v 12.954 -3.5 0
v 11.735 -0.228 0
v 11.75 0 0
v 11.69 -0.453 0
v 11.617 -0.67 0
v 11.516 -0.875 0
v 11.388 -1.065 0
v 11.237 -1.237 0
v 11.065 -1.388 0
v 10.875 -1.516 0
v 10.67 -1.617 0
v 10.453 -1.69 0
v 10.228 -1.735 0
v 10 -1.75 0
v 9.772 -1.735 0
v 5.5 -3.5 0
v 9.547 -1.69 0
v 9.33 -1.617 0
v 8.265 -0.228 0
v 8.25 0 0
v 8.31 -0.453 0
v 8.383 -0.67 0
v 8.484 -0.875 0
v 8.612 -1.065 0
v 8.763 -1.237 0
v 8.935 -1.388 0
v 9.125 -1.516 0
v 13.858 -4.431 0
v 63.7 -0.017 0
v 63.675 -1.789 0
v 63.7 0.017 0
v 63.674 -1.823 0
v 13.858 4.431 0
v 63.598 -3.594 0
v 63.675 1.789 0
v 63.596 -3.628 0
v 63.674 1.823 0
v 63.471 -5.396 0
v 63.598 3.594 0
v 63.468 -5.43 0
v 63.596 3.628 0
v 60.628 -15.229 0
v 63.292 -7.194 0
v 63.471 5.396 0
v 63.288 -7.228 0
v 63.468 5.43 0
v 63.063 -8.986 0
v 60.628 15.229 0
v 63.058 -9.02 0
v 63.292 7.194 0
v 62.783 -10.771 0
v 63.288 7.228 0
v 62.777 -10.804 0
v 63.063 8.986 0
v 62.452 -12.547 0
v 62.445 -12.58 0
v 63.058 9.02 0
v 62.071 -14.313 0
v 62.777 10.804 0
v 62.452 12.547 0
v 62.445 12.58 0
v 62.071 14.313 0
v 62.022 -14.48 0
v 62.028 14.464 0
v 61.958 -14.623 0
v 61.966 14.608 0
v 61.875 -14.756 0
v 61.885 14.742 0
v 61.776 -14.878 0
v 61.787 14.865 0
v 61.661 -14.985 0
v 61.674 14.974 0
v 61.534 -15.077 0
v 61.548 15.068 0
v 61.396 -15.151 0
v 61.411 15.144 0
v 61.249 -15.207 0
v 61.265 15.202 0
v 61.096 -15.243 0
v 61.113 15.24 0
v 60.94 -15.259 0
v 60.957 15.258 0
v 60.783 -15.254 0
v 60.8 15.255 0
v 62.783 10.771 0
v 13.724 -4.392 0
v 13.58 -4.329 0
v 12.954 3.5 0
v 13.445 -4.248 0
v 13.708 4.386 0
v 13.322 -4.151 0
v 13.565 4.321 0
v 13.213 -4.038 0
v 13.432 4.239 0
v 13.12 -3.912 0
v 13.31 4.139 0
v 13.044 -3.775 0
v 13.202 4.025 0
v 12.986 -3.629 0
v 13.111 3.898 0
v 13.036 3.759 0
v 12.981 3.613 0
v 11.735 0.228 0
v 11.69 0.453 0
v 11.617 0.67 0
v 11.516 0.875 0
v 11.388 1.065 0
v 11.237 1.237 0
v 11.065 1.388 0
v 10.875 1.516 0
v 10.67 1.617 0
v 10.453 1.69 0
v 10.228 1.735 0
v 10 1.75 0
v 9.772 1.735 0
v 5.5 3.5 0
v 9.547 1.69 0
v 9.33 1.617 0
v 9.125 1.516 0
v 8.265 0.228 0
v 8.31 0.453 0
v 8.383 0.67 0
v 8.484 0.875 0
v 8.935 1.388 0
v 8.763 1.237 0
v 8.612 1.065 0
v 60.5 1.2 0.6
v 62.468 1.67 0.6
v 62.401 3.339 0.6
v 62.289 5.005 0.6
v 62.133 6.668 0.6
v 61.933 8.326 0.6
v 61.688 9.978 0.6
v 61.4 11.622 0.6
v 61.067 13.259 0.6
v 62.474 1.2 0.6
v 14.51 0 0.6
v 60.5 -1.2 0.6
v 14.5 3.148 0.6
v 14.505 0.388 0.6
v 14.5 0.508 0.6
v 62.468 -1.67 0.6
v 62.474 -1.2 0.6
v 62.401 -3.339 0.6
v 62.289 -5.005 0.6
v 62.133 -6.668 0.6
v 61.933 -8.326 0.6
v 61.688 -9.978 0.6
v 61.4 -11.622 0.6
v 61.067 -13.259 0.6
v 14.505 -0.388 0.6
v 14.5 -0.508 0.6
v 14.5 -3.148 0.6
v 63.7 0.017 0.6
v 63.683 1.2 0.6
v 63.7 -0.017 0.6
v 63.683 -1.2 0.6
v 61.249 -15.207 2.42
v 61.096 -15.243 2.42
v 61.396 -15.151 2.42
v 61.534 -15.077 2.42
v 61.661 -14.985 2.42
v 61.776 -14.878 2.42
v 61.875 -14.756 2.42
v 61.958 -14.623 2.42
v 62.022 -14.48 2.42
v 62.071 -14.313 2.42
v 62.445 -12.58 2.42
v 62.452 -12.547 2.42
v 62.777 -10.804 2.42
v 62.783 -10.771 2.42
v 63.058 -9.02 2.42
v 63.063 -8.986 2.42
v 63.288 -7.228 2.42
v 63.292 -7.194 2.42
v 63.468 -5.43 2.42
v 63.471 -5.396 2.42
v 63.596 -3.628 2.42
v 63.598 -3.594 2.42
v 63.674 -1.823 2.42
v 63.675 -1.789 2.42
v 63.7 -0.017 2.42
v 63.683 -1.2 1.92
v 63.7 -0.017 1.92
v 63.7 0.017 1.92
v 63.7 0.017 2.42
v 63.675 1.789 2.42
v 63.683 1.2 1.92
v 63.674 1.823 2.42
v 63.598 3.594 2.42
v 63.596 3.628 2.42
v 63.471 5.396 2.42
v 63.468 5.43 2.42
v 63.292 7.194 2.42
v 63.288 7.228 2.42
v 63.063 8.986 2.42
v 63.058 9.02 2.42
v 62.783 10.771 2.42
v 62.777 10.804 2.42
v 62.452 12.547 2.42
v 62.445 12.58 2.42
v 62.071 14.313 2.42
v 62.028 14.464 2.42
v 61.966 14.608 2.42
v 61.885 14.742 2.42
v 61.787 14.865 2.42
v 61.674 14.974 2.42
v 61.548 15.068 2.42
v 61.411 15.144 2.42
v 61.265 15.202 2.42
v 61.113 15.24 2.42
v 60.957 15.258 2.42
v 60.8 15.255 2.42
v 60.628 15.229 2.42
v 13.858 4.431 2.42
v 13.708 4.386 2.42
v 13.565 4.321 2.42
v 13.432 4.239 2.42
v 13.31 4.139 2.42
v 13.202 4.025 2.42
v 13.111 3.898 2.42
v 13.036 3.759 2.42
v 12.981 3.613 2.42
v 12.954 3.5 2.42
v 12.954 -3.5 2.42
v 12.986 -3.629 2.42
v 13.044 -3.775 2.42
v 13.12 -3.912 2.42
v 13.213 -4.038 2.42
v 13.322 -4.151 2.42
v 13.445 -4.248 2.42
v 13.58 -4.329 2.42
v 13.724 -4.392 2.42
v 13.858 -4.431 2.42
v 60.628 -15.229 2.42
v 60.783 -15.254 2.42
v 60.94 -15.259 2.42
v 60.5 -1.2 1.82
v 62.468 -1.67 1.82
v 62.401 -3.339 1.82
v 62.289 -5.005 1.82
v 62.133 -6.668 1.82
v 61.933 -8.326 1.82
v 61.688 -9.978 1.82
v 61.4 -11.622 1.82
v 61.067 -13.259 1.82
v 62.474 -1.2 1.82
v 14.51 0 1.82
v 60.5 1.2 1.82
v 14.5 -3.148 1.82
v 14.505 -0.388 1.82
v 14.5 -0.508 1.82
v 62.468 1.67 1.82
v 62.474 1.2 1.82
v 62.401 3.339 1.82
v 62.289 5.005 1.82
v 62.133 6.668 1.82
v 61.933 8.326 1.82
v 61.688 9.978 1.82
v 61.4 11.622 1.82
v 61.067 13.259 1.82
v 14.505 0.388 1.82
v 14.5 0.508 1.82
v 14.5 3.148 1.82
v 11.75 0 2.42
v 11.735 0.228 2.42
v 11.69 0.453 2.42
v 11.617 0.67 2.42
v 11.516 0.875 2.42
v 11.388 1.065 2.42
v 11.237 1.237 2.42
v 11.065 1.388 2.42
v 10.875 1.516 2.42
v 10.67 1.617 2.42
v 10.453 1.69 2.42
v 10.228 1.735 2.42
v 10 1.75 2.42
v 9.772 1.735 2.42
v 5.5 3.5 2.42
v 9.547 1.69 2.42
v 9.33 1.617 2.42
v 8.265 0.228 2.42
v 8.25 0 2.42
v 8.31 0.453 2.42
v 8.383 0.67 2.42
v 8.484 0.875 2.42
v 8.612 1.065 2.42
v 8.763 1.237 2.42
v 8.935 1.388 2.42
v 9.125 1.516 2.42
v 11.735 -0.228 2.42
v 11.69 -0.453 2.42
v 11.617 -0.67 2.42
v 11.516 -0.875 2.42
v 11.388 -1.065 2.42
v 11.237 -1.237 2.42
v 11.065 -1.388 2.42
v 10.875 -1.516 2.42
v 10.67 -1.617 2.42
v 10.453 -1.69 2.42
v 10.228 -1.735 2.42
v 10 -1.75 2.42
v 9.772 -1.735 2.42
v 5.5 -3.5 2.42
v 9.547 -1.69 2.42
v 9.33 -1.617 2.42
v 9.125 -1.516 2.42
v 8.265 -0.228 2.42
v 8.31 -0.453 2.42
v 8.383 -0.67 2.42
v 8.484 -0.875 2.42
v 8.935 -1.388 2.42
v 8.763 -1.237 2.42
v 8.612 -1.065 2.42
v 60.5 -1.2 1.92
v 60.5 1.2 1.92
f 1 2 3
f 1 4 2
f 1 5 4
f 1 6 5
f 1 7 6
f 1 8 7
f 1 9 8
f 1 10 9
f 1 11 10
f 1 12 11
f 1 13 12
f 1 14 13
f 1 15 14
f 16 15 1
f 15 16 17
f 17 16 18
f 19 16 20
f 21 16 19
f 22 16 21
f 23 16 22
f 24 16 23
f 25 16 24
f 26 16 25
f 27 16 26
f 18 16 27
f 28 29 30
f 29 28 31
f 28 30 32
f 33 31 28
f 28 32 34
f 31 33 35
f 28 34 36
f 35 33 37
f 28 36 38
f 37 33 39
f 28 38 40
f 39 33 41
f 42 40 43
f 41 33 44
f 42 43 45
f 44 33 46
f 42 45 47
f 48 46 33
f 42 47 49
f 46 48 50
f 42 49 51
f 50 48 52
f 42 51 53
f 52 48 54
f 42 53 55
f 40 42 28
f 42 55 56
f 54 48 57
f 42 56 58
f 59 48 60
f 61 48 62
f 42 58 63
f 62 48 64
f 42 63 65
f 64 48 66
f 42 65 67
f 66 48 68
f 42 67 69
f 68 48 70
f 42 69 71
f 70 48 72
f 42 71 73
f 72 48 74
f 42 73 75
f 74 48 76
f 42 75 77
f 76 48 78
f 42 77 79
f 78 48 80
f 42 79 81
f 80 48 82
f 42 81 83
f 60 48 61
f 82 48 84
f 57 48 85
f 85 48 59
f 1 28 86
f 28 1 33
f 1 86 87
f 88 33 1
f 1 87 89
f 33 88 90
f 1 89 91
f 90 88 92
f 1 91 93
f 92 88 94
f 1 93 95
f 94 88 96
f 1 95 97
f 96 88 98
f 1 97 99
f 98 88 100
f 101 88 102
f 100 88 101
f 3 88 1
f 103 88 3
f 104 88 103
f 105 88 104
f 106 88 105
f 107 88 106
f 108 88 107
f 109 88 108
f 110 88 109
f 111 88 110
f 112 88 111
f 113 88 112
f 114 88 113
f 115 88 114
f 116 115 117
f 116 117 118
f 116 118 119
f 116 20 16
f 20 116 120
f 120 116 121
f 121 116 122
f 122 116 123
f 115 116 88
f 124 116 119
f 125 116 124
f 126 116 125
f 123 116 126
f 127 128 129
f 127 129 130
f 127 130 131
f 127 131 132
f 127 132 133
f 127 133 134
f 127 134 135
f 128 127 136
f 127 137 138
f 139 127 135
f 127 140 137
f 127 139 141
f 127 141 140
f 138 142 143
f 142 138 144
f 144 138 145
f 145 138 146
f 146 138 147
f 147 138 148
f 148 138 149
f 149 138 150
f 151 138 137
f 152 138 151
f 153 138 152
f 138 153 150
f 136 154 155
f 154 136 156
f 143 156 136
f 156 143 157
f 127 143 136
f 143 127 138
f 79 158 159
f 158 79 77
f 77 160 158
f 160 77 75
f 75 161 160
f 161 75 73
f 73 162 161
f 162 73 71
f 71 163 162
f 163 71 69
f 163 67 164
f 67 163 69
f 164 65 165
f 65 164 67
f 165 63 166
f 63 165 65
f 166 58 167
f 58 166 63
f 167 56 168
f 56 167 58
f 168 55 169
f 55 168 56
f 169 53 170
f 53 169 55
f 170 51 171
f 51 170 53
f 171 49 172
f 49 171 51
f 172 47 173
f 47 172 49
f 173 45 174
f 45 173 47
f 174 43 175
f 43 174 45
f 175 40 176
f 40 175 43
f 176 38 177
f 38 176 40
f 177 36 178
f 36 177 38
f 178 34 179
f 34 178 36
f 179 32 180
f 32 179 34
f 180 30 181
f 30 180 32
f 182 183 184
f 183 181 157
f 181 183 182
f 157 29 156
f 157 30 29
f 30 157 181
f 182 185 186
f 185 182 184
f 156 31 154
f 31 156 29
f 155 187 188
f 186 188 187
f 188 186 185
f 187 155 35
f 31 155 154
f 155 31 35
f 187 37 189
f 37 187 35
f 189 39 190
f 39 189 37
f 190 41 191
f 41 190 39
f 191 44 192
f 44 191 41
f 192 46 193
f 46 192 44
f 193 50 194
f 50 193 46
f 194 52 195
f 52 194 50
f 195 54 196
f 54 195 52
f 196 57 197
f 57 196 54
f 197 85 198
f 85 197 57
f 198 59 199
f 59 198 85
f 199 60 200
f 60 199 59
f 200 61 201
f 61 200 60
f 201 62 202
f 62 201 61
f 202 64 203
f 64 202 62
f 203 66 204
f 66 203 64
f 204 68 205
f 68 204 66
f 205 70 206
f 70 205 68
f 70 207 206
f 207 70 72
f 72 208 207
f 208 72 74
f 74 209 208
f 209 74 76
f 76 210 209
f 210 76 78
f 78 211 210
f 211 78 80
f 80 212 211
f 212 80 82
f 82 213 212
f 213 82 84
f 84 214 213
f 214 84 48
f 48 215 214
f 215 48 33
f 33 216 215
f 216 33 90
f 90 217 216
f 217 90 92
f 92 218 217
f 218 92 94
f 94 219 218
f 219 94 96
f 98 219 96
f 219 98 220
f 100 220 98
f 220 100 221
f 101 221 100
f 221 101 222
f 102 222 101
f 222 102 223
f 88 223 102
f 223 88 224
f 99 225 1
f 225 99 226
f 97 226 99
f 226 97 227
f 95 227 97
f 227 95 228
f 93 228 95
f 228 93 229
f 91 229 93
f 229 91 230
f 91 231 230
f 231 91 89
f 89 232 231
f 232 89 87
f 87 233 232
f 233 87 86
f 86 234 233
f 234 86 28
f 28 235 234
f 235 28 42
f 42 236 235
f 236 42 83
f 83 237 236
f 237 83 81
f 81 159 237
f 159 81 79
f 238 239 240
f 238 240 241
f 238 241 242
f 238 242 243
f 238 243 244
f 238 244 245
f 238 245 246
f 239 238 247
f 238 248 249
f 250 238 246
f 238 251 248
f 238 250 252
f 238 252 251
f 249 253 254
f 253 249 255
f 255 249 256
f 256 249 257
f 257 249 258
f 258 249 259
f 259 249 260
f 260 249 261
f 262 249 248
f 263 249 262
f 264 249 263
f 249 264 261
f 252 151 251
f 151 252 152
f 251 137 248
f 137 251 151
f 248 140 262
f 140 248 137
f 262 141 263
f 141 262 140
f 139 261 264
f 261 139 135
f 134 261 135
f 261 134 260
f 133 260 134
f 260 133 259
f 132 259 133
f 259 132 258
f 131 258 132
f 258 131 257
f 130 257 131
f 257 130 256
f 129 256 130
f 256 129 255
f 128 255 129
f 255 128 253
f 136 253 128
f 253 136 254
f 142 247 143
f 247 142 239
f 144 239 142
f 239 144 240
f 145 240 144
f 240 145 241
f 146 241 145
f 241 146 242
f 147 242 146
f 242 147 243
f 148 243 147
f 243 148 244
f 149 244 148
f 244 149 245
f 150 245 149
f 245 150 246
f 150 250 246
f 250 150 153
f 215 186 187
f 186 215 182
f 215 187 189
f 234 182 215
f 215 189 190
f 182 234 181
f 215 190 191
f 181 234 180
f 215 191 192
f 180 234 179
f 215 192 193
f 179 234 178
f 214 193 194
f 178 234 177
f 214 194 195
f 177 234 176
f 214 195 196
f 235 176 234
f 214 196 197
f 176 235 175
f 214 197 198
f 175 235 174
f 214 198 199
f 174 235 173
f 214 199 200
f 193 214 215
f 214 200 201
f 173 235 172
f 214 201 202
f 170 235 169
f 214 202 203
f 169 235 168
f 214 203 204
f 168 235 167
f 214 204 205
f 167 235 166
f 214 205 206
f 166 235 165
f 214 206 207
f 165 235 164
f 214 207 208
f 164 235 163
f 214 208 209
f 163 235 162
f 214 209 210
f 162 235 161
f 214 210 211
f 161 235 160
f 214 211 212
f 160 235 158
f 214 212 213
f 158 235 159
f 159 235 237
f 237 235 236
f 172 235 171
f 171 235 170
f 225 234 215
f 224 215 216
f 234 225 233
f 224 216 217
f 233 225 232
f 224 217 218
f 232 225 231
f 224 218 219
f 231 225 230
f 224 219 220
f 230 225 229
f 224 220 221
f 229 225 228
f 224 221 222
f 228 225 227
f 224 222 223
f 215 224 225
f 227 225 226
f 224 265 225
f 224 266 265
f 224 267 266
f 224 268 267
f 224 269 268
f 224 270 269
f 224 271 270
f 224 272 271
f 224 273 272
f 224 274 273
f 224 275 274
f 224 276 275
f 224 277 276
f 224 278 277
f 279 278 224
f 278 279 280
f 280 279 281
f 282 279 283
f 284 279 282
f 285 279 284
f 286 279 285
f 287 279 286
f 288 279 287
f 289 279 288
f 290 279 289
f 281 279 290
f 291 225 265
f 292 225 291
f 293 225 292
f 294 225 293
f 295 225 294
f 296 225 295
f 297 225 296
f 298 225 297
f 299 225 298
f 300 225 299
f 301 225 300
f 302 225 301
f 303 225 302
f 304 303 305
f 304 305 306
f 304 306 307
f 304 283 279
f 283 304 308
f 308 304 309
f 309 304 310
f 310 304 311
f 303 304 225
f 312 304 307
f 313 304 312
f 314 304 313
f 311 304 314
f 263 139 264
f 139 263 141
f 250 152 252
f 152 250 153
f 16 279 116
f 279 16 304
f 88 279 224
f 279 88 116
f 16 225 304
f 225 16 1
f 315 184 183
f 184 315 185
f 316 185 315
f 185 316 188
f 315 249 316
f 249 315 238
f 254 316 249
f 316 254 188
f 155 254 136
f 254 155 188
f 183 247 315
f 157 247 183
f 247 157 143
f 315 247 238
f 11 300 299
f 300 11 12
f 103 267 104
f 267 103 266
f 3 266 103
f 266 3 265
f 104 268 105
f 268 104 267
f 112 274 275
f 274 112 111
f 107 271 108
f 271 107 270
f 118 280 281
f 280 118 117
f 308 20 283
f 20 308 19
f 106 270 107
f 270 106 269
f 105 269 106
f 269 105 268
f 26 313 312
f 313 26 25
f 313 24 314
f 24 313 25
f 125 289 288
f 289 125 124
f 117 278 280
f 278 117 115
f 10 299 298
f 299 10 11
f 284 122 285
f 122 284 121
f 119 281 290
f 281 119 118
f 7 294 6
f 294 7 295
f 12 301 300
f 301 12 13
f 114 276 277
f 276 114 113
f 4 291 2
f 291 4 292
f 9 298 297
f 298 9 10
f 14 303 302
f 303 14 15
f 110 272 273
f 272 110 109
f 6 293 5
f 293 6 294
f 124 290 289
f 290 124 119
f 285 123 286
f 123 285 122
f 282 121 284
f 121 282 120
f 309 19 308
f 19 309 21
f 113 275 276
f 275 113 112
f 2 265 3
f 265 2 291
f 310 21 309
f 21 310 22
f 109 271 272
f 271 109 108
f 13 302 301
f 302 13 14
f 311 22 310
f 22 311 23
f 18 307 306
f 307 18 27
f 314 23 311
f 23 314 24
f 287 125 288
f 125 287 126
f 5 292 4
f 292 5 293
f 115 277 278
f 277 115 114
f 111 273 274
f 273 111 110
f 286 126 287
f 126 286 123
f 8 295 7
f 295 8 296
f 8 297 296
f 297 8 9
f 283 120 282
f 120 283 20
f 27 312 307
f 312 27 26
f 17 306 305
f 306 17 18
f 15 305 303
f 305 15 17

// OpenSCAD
// file: parameters.scad
// =============================================================================
// Gen-AT Dual-rotor copper-centroid hypermicro AFPM - WOUND-AWARE (HARD GATE)
// PRIMARY challenger vs Gen-AQ. Magnets @ R=38.5 + 210 t + former_web 1.22 -> m2m 4.68.
// =============================================================================

// --- Wire / wind budget (26 AWG, ~1 lb spool ~ 390 m bare-equiv) --------------
wire_awg            = 26;
wire_od             = 0.45;     // insulated OD mm
turns               = 210;      // +5 vs Gen-AQ 205
fill                = 0.70;
layers_per_face     = 2;        // axial layers proud of EACH flange
wind_build_axial    = layers_per_face * wire_od * fill;   // 0.63 mm
wind_build_radial   = 3 * wire_od * fill;                 // 0.945 mm

// --- Pancake former (bare STL) -----------------------------------------------
coil_id_r           = 14.5;     // copper-centroid window centered ~R=38.5
coil_od_r           = 62.5;
span_deg            = 26.0;     // 12 stations x 30 deg pitch
former_web          = 1.22;     // thinner vs AQ 1.25 (print-safe >=1.20 LB)
flange_t            = 0.60;
wall                = 1.2;
slot_w              = 2.4;
mount_hole          = 3.5;
tab_len             = 7.0;

former_bare_h       = former_web + 2 * flange_t;            // 2.42 mm
coil_envelope_h     = former_bare_h + 2 * wind_build_axial; // 3.68 mm

// --- Running clearance (magnet face -> WOUND face) EACH side ------------------
run_clear           = 0.50;     // PASS floor >= 0.5
gap_spacer_h        = run_clear + wind_build_axial;         // 1.13 mm
m2m                 = coil_envelope_h + 2 * run_clear;      // 4.68 mm (beats Gen-AQ 4.71)

// --- Mid stator (12 pancakes 3ph; winds proud both faces) ---------------------
coil_stations       = 12;
bay_r_in            = coil_id_r - 2.0 - wind_build_radial;
bay_r_out           = coil_od_r + 2.0 + wind_build_radial;
bay_span            = span_deg + 4.0;
bay_offset          = 2.0;
stator_thick        = former_bare_h;                        // winds proud +/-Z
stator_od           = 160.0;
shaft_clear_stator  = 34.0;
coil_mount_r        = 25.0;

// --- Rotors (x2) - 8xO20 @ R=38.5 (copper centroid) + 24xO5 Halbach ----------
large_pocket_d      = 20.3;
small_pocket_d      = 5.3;
pocket_h            = 5.2;
large_n             = 8;
R_large             = 38.5;     // covers ~28.5-48.5 over copper centroid ~38.5
R_small_inner       = 23.5;
R_small_mid         = 38.5;
R_small_outer       = 55.5;
carrier_od          = 156.0;
carrier_thick       = 7.5;
hub_h               = 10.0;
hub_od              = 30.0;
rotor_b_offset_deg  = 22.5;

// --- Modular MAX interface (Gen-E family) ------------------------------------
shaft_bore          = 8.35;
bearing_d           = 21.85;
bearing_h           = 7.2;
m3_clear            = 3.5;
bolt_r_inner        = 36.0;
bolt_n_inner        = 6;
flange_bolt_r       = 72.0;
flange_bolt_n       = 6;
brace_r             = 68.0;
brace_d             = 4.3;
brace_n             = 4;

spacer_pad_od       = 14.0;
spacer_pad_id       = m3_clear;
endbell_od          = 160.0;
endbell_thick       = 8.0;
endbell_shaft_clear = 10.0;

$fn = 64;
// main file
// Gen-AT pancake former — wind BEFORE assembly
include <parameters.scad>;
$fn = 48;

module sector_2d(r_in, r_out, ang) {
    polygon([
        for (a = [-ang/2 : ang/16 : ang/2]) [r_in*cos(a), r_in*sin(a)],
        for (a = [ang/2 : -ang/16 : -ang/2]) [r_out*cos(a), r_out*sin(a)]
    ]);
}
module flange() {
    linear_extrude(flange_t) offset(r=wall) sector_2d(coil_id_r, coil_od_r, span_deg);
}
difference() {
    union() {
        flange();
        translate([0, 0, flange_t])
            linear_extrude(former_web)
                difference() {
                    offset(r=wall) sector_2d(coil_id_r, coil_od_r, span_deg);
                    sector_2d(coil_id_r + 0.01, coil_od_r - 0.01, span_deg - 1.5);
                }
        translate([0, 0, flange_t + former_web]) flange();
        translate([coil_id_r - tab_len - 2, -3.5, 0])
            cube([tab_len + 2, 7, former_bare_h]);
    }
    translate([coil_od_r - 2, -slot_w/2, flange_t])
        cube([wall + 4, slot_w, former_web + 0.1]);
    translate([coil_id_r - tab_len/2 - 1, 0, -0.1])
        cylinder(d=mount_hole, h=former_bare_h + 1);
}
